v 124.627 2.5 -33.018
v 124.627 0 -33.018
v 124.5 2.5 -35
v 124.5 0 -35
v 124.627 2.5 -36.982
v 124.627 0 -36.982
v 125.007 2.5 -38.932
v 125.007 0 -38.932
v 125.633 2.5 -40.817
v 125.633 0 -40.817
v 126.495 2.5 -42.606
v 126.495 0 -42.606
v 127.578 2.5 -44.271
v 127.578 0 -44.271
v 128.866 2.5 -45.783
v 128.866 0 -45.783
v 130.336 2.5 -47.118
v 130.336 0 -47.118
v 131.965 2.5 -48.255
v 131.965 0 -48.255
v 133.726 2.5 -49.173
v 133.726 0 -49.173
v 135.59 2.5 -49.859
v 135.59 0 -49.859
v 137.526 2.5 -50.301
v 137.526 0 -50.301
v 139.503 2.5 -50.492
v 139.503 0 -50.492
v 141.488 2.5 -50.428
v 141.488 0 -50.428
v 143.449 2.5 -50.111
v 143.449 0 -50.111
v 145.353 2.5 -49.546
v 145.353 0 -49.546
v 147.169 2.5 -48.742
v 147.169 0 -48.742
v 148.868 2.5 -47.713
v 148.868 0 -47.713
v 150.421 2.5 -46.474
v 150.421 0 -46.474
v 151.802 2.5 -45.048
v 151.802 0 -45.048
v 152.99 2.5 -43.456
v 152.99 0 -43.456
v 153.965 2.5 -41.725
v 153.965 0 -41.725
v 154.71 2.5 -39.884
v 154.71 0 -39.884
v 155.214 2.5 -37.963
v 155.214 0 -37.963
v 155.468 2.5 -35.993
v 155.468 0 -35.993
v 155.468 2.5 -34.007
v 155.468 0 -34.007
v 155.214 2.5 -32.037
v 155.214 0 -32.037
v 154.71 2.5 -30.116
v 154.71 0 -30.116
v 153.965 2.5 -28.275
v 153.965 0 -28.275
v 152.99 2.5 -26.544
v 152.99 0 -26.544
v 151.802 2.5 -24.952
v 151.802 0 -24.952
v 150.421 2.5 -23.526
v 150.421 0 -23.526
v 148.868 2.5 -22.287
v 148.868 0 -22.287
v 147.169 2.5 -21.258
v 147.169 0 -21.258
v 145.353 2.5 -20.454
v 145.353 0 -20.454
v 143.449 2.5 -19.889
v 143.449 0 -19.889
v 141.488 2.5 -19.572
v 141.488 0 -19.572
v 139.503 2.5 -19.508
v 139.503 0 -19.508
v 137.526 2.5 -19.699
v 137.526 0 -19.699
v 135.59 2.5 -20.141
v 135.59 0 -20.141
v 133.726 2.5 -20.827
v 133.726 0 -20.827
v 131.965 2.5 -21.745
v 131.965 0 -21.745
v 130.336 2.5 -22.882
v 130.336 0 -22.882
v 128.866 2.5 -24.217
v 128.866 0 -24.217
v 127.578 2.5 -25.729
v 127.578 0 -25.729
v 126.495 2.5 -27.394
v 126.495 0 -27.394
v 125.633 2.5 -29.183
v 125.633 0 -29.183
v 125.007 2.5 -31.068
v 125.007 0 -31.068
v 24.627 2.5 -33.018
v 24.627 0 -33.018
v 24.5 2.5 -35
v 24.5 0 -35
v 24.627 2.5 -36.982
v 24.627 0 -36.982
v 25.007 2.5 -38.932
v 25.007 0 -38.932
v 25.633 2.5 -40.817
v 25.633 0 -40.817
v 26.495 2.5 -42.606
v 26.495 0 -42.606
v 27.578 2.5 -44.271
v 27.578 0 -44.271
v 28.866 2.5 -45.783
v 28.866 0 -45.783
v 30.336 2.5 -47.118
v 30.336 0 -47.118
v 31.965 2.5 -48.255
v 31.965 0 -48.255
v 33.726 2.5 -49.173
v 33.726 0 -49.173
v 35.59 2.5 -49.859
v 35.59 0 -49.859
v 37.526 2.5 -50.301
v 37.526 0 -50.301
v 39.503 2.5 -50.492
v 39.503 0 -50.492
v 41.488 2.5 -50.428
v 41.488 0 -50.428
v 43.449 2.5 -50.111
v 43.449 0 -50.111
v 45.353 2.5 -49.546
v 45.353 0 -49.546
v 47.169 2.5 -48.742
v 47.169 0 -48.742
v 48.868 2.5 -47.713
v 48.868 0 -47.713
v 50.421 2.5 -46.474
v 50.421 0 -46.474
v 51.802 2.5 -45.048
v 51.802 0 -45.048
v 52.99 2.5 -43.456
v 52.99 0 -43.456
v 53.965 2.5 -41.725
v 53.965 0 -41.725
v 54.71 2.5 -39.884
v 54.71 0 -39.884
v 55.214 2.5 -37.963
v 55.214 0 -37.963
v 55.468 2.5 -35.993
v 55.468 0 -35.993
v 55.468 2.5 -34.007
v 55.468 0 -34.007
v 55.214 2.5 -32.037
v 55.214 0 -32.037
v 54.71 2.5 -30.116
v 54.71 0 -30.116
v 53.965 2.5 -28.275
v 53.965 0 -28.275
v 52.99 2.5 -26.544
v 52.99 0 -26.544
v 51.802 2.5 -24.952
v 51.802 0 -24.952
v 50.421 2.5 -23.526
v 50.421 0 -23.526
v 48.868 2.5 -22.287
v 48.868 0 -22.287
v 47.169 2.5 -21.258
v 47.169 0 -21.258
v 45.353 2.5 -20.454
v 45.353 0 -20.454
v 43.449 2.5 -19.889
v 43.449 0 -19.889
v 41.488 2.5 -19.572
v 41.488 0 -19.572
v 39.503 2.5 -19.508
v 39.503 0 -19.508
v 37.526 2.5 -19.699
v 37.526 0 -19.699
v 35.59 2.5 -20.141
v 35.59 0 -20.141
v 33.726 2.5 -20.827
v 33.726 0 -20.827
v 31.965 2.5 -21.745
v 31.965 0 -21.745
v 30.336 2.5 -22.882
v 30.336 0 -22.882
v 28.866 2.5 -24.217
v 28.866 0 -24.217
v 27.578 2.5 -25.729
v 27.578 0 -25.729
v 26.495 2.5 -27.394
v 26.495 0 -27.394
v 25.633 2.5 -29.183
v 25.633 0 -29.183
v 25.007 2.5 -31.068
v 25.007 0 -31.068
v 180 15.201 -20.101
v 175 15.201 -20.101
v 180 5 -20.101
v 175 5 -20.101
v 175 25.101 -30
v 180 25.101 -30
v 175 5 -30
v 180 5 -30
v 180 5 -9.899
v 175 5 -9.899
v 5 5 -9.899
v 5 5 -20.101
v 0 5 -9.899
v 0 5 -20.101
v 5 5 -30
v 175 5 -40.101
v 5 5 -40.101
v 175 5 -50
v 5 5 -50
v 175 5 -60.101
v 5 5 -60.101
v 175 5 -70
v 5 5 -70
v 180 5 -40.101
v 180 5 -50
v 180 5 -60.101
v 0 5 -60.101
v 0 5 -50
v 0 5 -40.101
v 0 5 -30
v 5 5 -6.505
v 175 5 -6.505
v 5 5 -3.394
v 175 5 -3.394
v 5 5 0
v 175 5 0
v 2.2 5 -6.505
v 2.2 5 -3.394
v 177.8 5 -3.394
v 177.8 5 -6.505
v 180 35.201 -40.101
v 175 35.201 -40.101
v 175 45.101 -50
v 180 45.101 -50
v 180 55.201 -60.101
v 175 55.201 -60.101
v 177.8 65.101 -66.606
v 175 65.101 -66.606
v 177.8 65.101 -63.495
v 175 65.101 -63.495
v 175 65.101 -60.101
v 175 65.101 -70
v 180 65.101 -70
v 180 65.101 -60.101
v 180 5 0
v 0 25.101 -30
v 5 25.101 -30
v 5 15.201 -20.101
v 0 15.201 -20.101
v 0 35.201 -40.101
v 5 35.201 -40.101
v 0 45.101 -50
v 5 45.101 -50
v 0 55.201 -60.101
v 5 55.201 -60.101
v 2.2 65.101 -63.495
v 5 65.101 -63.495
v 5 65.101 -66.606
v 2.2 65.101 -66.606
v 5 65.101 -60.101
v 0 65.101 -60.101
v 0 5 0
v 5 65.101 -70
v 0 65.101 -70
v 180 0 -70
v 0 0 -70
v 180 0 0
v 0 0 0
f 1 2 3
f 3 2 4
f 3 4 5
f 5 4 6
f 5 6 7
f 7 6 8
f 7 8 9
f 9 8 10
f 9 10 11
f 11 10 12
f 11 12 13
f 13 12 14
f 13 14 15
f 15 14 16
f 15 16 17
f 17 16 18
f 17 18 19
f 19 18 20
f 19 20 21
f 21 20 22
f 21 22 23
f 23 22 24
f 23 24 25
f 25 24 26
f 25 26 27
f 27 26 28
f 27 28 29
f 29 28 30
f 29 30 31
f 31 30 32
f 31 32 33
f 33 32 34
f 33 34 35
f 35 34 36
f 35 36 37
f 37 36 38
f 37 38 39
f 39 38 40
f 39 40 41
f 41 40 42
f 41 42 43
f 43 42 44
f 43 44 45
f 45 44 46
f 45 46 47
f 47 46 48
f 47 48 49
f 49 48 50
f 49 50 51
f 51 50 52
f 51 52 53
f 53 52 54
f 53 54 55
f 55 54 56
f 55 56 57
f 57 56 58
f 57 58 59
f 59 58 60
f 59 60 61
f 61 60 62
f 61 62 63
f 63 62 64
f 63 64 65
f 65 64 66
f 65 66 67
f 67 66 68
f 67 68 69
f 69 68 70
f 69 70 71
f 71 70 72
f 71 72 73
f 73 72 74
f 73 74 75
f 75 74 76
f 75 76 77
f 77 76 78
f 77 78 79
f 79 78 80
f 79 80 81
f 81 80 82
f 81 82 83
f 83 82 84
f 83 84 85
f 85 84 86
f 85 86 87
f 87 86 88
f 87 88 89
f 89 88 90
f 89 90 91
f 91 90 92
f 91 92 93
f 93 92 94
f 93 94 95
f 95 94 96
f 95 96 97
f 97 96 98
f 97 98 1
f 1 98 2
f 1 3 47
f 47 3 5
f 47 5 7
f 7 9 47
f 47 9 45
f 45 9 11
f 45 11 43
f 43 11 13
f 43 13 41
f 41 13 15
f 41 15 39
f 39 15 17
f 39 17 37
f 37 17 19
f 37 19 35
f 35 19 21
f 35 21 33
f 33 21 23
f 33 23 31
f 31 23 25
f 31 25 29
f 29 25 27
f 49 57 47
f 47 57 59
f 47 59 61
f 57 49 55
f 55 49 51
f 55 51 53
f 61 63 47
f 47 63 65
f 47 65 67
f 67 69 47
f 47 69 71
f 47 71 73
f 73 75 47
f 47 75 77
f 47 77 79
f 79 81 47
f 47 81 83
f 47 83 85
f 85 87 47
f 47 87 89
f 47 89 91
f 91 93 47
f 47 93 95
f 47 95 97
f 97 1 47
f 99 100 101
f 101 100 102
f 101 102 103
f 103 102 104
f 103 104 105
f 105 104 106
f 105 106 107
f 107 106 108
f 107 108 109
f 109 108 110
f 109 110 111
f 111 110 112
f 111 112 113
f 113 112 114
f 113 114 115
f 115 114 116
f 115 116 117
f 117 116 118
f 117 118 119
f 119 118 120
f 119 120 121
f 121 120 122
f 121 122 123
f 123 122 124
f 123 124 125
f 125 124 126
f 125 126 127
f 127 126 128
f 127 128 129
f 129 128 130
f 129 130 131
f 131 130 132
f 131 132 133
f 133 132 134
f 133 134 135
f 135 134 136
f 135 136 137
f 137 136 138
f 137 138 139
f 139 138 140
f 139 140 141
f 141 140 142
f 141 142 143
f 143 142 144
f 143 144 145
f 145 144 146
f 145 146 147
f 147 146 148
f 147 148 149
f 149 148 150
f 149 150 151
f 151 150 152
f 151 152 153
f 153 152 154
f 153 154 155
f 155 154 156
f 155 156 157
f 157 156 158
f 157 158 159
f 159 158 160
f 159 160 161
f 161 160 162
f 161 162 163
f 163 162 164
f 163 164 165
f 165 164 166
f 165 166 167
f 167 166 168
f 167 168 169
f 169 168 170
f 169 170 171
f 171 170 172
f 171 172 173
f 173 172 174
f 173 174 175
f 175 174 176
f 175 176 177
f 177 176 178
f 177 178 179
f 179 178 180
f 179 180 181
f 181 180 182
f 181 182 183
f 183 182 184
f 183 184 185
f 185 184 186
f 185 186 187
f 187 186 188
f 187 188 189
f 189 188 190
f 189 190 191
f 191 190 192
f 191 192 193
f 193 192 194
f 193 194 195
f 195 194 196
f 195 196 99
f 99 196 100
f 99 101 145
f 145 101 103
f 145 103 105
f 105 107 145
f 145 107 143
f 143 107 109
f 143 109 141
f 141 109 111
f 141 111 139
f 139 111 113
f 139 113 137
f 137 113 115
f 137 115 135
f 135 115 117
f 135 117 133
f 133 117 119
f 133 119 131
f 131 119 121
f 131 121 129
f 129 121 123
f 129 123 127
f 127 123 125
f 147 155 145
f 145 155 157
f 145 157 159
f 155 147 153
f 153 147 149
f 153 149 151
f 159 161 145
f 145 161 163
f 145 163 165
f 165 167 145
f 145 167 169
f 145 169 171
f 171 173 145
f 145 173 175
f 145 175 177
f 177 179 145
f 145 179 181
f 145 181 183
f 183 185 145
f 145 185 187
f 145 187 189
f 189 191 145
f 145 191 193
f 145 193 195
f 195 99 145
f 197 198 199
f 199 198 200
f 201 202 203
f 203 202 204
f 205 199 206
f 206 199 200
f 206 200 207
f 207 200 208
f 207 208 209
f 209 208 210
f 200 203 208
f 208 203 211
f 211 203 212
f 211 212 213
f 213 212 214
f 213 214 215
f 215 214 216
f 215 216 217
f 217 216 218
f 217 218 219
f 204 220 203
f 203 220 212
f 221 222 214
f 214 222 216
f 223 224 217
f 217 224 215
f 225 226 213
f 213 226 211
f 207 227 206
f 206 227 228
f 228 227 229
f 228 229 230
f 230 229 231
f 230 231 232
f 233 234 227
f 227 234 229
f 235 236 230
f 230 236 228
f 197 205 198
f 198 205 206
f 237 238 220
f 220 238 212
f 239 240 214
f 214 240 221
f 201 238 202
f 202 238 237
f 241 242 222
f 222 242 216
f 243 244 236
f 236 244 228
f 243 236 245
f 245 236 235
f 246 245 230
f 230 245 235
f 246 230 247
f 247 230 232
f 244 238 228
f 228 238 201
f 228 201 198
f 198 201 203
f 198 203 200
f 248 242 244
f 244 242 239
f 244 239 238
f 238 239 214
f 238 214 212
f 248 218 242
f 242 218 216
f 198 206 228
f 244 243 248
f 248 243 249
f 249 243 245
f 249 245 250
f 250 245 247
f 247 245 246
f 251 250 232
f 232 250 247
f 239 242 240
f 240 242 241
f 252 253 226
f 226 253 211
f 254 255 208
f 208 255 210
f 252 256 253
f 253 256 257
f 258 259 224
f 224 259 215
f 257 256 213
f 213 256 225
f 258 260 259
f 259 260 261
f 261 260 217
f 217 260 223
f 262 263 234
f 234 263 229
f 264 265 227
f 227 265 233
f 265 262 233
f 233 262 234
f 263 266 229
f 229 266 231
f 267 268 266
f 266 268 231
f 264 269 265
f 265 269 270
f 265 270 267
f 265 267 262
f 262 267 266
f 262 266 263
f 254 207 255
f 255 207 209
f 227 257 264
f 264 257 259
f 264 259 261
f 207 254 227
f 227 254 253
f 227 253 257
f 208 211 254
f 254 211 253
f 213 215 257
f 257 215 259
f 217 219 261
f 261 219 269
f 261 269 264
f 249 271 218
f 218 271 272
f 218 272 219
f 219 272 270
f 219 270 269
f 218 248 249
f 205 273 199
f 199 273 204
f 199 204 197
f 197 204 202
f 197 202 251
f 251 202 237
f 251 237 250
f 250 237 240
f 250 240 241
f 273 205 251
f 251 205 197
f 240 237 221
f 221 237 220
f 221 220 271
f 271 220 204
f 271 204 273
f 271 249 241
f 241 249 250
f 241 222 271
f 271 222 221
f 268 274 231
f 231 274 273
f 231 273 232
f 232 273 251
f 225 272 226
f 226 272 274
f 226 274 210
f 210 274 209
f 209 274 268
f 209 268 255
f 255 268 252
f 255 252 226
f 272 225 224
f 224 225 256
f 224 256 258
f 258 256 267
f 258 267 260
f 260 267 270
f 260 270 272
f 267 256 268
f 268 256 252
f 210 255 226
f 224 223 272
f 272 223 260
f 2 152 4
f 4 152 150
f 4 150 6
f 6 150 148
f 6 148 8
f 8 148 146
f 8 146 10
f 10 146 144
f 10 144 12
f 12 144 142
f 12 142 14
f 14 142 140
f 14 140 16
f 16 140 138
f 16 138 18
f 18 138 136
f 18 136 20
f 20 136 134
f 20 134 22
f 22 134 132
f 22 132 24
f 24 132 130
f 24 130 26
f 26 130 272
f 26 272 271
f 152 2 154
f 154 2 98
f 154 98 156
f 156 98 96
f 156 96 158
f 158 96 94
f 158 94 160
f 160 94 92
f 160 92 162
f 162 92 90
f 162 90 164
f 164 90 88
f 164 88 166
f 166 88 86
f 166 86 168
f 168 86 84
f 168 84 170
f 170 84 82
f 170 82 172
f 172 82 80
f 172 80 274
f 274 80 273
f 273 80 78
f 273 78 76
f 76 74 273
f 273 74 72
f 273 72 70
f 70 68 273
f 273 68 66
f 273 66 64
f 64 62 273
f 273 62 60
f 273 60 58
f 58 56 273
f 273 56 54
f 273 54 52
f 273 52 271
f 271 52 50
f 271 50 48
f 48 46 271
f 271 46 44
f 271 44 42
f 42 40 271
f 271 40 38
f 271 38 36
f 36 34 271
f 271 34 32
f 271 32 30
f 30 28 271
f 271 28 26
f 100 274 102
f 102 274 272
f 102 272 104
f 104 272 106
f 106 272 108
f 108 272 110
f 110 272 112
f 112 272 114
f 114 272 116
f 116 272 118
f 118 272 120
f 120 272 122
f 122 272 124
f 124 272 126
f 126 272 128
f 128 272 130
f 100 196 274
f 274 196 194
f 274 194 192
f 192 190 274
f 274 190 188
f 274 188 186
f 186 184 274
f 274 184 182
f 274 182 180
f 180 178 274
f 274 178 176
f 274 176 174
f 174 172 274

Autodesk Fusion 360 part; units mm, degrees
sketch "Sketch1" plane through (0, 0, 0) normal (0, 1, 0) x (1, 0, 0)
  line L0 (0, 0) -> (180, 0)
  line L1 (180, 0) -> (180, 70)
  line L2 (180, 70) -> (0, 70)
  line L3 (0, 70) -> (0, 0)
  dimension "d1" = 180
  dimension "d2" = 70
extrude "Extrude1" add sketch "Sketch1" along normal blind 5
sketch "Sketch2" plane through (0, 0, 0) normal (-1, 0, 0) x (0, 0, 1)
  line L0 (-70, 0) -> (0, 0)
  line L1 (0, 0) -> (0, 5)
  line L2 (0, 5) -> (-70, 5)
  line L3 (-70, 5) -> (-70, 0)
  line L4 (-70, 5) -> (-70, 105) construction
  line L5 (0, 5) -> (-70, 75)
  line L6 (-9.8995, 5) -> (-70, 65.1005)
  line L7 (-70, 65.1005) -> (-60.1005, 65.1005)
  line L8 (-9.8995, 5) -> (0, 5)
  dimension "d5" = 100
  dimension "d6" = 45
extrude "Extrude2" add sketch "Sketch2" against normal blind 5 contours L2 L5 L6 L7 L8
ref_plane "WorkPlane1" through (2.5, 65.1005, -70) normal (0, -0.7071, 0.7071) x (1, 0, 0)
sketch "Sketch3" plane through (0, 67.5503, -67.5503) normal (0, -0.7071, 0.7071) x (1, 0, 0)
  line L0 (0, -3.4645) -> (0, 3.5355) construction
  line L1 (0, 3.5355) -> (5, 3.5355) construction
  line L2 (5, 3.5355) -> (5, -3.4645) construction
  line L3 (5, -3.4645) -> (0, -3.4645) construction
  line L4 (5, 1.1355) -> (2.2, 1.1355)
  line L5 (2.2, 1.1355) -> (2.2, -1.0645)
  line L6 (2.2, -1.0645) -> (5, -1.0645)
  line L7 (5, -1.0645) -> (5, 1.1355)
  line L8 (5, 0.0355) -> (5, 3.5355)
  line L9 (5, 0.0355) -> (5, -3.4645)
  dimension "d11" = 2.8
  dimension "d12" = 2.2
extrude "Extrude3" cut sketch "Sketch3" along normal up to surface end surface through (0, 5, 0) normal (0, 1, 0) offset 0
sketch "Sketch4" plane through (0, 5, 0) normal (0, 1, 0) x (-1, 0, 0)
  line L0 (0, -9.8995) -> (-5, -9.8995)
  line L1 (-5, -9.8995) -> (-5, -6.5054)
  line L2 (-5, -6.5054) -> (-2.2, -6.5054)
  line L3 (-2.2, -6.5054) -> (-2.2, -3.3941)
  line L4 (-2.2, -3.3941) -> (-5, -3.3941)
  line L5 (-5, -3.3941) -> (-5, 0)
  line L6 (-5, 0) -> (-180, 0)
  line L7 (-180, 0) -> (-180, -70)
  line L8 (-180, -70) -> (0, -70)
  line L9 (0, -70) -> (0, -9.8995)
  line L10 (-2.2, -66.6059) -> (-5, -66.6059)
  line L11 (-5, -66.6059) -> (-5, -70)
  line L12 (-5, -70) -> (0, -70)
  line L13 (0, -70) -> (0, -60.1005)
  line L14 (0, -60.1005) -> (-5, -60.1005)
  line L15 (-5, -60.1005) -> (-5, -63.4946)
  line L16 (-5, -63.4946) -> (-2.2, -63.4946)
  line L17 (-2.2, -63.4946) -> (-2.2, -66.6059)
  line L18 (-5, -66.6059) -> (-2.2, -66.6059)
  line L19 (-2.2, -66.6059) -> (-2.2, -6.5054)
  line L20 (-2.2, -6.5054) -> (-5, -6.5054)
  line L21 (-5, -6.5054) -> (-5, -66.6059)
  line L22 (-5, -60.1005) -> (0, -60.1005)
  line L23 (0, -60.1005) -> (0, -70)
  line L24 (0, -70) -> (-5, -70)
  line L25 (-5, -70) -> (-5, -60.1005)
  line L26 (-5, -40.1005) -> (0, -40.1005)
  line L27 (-5, -50) -> (-5, -40.1005)
  line L28 (0, -40.1005) -> (0, -50)
  line L29 (0, -50) -> (-5, -50)
  line L30 (-5, -20.1005) -> (0, -20.1005)
  line L31 (-5, -30) -> (-5, -20.1005)
  line L32 (0, -20.1005) -> (0, -30)
  line L33 (0, -30) -> (-5, -30)
  dimension "d19" = 20
  dimension "d20" = 0
extrude "Extrude4" add sketch "Sketch4" along normal up to surface contours L9 L19 L30 L32 L33 | L19 L21 L30 L31 L33 | L9 L19 L26 L28 L29 | L19 L21 L26 L27 L29 | L8 L9 L10 L11 L12 L13 L14 L17 L18 L19 L22 L23 L24 L25 | L14 L15 L16 L19 L21 L22 L25 | L10 L16 L17 L18 L19 L21 L25 end surface through (0, 5, -9.8995) normal (0, -0.707107, -0.707107) offset 0
ref_plane "WorkPlane2" through (90, 32.5503, -35) normal (-1, 0, 0) x (0, 0, 1)
mirror "Mirror1" about plane through (90, 32.5503, -35) normal (-1, 0, 0) of "Extrude2", "Extrude4", "Extrude3"
sketch "Sketch5" plane through (0, 0, 0) normal (0, -1, 0) x (1, 0, 0)
  line L0 (0, 0) -> (0, -70)
  line L1 (0, -70) -> (180, -70)
  line L2 (180, -70) -> (180, 0)
  line L3 (180, 0) -> (0, 0)
  line L4 (180, -35) -> (0, -35) construction
  line L5 (90, -70) -> (90, 0) construction
  circle A0 centre (140, -35) radius 15.5
  circle A1 centre (40, -35) radius 15.5
  dimension "d23" = 31
  dimension "d24" = 50
extrude "Extrude5" cut sketch "Sketch5" against normal blind 2.5 contours A0 | A1
